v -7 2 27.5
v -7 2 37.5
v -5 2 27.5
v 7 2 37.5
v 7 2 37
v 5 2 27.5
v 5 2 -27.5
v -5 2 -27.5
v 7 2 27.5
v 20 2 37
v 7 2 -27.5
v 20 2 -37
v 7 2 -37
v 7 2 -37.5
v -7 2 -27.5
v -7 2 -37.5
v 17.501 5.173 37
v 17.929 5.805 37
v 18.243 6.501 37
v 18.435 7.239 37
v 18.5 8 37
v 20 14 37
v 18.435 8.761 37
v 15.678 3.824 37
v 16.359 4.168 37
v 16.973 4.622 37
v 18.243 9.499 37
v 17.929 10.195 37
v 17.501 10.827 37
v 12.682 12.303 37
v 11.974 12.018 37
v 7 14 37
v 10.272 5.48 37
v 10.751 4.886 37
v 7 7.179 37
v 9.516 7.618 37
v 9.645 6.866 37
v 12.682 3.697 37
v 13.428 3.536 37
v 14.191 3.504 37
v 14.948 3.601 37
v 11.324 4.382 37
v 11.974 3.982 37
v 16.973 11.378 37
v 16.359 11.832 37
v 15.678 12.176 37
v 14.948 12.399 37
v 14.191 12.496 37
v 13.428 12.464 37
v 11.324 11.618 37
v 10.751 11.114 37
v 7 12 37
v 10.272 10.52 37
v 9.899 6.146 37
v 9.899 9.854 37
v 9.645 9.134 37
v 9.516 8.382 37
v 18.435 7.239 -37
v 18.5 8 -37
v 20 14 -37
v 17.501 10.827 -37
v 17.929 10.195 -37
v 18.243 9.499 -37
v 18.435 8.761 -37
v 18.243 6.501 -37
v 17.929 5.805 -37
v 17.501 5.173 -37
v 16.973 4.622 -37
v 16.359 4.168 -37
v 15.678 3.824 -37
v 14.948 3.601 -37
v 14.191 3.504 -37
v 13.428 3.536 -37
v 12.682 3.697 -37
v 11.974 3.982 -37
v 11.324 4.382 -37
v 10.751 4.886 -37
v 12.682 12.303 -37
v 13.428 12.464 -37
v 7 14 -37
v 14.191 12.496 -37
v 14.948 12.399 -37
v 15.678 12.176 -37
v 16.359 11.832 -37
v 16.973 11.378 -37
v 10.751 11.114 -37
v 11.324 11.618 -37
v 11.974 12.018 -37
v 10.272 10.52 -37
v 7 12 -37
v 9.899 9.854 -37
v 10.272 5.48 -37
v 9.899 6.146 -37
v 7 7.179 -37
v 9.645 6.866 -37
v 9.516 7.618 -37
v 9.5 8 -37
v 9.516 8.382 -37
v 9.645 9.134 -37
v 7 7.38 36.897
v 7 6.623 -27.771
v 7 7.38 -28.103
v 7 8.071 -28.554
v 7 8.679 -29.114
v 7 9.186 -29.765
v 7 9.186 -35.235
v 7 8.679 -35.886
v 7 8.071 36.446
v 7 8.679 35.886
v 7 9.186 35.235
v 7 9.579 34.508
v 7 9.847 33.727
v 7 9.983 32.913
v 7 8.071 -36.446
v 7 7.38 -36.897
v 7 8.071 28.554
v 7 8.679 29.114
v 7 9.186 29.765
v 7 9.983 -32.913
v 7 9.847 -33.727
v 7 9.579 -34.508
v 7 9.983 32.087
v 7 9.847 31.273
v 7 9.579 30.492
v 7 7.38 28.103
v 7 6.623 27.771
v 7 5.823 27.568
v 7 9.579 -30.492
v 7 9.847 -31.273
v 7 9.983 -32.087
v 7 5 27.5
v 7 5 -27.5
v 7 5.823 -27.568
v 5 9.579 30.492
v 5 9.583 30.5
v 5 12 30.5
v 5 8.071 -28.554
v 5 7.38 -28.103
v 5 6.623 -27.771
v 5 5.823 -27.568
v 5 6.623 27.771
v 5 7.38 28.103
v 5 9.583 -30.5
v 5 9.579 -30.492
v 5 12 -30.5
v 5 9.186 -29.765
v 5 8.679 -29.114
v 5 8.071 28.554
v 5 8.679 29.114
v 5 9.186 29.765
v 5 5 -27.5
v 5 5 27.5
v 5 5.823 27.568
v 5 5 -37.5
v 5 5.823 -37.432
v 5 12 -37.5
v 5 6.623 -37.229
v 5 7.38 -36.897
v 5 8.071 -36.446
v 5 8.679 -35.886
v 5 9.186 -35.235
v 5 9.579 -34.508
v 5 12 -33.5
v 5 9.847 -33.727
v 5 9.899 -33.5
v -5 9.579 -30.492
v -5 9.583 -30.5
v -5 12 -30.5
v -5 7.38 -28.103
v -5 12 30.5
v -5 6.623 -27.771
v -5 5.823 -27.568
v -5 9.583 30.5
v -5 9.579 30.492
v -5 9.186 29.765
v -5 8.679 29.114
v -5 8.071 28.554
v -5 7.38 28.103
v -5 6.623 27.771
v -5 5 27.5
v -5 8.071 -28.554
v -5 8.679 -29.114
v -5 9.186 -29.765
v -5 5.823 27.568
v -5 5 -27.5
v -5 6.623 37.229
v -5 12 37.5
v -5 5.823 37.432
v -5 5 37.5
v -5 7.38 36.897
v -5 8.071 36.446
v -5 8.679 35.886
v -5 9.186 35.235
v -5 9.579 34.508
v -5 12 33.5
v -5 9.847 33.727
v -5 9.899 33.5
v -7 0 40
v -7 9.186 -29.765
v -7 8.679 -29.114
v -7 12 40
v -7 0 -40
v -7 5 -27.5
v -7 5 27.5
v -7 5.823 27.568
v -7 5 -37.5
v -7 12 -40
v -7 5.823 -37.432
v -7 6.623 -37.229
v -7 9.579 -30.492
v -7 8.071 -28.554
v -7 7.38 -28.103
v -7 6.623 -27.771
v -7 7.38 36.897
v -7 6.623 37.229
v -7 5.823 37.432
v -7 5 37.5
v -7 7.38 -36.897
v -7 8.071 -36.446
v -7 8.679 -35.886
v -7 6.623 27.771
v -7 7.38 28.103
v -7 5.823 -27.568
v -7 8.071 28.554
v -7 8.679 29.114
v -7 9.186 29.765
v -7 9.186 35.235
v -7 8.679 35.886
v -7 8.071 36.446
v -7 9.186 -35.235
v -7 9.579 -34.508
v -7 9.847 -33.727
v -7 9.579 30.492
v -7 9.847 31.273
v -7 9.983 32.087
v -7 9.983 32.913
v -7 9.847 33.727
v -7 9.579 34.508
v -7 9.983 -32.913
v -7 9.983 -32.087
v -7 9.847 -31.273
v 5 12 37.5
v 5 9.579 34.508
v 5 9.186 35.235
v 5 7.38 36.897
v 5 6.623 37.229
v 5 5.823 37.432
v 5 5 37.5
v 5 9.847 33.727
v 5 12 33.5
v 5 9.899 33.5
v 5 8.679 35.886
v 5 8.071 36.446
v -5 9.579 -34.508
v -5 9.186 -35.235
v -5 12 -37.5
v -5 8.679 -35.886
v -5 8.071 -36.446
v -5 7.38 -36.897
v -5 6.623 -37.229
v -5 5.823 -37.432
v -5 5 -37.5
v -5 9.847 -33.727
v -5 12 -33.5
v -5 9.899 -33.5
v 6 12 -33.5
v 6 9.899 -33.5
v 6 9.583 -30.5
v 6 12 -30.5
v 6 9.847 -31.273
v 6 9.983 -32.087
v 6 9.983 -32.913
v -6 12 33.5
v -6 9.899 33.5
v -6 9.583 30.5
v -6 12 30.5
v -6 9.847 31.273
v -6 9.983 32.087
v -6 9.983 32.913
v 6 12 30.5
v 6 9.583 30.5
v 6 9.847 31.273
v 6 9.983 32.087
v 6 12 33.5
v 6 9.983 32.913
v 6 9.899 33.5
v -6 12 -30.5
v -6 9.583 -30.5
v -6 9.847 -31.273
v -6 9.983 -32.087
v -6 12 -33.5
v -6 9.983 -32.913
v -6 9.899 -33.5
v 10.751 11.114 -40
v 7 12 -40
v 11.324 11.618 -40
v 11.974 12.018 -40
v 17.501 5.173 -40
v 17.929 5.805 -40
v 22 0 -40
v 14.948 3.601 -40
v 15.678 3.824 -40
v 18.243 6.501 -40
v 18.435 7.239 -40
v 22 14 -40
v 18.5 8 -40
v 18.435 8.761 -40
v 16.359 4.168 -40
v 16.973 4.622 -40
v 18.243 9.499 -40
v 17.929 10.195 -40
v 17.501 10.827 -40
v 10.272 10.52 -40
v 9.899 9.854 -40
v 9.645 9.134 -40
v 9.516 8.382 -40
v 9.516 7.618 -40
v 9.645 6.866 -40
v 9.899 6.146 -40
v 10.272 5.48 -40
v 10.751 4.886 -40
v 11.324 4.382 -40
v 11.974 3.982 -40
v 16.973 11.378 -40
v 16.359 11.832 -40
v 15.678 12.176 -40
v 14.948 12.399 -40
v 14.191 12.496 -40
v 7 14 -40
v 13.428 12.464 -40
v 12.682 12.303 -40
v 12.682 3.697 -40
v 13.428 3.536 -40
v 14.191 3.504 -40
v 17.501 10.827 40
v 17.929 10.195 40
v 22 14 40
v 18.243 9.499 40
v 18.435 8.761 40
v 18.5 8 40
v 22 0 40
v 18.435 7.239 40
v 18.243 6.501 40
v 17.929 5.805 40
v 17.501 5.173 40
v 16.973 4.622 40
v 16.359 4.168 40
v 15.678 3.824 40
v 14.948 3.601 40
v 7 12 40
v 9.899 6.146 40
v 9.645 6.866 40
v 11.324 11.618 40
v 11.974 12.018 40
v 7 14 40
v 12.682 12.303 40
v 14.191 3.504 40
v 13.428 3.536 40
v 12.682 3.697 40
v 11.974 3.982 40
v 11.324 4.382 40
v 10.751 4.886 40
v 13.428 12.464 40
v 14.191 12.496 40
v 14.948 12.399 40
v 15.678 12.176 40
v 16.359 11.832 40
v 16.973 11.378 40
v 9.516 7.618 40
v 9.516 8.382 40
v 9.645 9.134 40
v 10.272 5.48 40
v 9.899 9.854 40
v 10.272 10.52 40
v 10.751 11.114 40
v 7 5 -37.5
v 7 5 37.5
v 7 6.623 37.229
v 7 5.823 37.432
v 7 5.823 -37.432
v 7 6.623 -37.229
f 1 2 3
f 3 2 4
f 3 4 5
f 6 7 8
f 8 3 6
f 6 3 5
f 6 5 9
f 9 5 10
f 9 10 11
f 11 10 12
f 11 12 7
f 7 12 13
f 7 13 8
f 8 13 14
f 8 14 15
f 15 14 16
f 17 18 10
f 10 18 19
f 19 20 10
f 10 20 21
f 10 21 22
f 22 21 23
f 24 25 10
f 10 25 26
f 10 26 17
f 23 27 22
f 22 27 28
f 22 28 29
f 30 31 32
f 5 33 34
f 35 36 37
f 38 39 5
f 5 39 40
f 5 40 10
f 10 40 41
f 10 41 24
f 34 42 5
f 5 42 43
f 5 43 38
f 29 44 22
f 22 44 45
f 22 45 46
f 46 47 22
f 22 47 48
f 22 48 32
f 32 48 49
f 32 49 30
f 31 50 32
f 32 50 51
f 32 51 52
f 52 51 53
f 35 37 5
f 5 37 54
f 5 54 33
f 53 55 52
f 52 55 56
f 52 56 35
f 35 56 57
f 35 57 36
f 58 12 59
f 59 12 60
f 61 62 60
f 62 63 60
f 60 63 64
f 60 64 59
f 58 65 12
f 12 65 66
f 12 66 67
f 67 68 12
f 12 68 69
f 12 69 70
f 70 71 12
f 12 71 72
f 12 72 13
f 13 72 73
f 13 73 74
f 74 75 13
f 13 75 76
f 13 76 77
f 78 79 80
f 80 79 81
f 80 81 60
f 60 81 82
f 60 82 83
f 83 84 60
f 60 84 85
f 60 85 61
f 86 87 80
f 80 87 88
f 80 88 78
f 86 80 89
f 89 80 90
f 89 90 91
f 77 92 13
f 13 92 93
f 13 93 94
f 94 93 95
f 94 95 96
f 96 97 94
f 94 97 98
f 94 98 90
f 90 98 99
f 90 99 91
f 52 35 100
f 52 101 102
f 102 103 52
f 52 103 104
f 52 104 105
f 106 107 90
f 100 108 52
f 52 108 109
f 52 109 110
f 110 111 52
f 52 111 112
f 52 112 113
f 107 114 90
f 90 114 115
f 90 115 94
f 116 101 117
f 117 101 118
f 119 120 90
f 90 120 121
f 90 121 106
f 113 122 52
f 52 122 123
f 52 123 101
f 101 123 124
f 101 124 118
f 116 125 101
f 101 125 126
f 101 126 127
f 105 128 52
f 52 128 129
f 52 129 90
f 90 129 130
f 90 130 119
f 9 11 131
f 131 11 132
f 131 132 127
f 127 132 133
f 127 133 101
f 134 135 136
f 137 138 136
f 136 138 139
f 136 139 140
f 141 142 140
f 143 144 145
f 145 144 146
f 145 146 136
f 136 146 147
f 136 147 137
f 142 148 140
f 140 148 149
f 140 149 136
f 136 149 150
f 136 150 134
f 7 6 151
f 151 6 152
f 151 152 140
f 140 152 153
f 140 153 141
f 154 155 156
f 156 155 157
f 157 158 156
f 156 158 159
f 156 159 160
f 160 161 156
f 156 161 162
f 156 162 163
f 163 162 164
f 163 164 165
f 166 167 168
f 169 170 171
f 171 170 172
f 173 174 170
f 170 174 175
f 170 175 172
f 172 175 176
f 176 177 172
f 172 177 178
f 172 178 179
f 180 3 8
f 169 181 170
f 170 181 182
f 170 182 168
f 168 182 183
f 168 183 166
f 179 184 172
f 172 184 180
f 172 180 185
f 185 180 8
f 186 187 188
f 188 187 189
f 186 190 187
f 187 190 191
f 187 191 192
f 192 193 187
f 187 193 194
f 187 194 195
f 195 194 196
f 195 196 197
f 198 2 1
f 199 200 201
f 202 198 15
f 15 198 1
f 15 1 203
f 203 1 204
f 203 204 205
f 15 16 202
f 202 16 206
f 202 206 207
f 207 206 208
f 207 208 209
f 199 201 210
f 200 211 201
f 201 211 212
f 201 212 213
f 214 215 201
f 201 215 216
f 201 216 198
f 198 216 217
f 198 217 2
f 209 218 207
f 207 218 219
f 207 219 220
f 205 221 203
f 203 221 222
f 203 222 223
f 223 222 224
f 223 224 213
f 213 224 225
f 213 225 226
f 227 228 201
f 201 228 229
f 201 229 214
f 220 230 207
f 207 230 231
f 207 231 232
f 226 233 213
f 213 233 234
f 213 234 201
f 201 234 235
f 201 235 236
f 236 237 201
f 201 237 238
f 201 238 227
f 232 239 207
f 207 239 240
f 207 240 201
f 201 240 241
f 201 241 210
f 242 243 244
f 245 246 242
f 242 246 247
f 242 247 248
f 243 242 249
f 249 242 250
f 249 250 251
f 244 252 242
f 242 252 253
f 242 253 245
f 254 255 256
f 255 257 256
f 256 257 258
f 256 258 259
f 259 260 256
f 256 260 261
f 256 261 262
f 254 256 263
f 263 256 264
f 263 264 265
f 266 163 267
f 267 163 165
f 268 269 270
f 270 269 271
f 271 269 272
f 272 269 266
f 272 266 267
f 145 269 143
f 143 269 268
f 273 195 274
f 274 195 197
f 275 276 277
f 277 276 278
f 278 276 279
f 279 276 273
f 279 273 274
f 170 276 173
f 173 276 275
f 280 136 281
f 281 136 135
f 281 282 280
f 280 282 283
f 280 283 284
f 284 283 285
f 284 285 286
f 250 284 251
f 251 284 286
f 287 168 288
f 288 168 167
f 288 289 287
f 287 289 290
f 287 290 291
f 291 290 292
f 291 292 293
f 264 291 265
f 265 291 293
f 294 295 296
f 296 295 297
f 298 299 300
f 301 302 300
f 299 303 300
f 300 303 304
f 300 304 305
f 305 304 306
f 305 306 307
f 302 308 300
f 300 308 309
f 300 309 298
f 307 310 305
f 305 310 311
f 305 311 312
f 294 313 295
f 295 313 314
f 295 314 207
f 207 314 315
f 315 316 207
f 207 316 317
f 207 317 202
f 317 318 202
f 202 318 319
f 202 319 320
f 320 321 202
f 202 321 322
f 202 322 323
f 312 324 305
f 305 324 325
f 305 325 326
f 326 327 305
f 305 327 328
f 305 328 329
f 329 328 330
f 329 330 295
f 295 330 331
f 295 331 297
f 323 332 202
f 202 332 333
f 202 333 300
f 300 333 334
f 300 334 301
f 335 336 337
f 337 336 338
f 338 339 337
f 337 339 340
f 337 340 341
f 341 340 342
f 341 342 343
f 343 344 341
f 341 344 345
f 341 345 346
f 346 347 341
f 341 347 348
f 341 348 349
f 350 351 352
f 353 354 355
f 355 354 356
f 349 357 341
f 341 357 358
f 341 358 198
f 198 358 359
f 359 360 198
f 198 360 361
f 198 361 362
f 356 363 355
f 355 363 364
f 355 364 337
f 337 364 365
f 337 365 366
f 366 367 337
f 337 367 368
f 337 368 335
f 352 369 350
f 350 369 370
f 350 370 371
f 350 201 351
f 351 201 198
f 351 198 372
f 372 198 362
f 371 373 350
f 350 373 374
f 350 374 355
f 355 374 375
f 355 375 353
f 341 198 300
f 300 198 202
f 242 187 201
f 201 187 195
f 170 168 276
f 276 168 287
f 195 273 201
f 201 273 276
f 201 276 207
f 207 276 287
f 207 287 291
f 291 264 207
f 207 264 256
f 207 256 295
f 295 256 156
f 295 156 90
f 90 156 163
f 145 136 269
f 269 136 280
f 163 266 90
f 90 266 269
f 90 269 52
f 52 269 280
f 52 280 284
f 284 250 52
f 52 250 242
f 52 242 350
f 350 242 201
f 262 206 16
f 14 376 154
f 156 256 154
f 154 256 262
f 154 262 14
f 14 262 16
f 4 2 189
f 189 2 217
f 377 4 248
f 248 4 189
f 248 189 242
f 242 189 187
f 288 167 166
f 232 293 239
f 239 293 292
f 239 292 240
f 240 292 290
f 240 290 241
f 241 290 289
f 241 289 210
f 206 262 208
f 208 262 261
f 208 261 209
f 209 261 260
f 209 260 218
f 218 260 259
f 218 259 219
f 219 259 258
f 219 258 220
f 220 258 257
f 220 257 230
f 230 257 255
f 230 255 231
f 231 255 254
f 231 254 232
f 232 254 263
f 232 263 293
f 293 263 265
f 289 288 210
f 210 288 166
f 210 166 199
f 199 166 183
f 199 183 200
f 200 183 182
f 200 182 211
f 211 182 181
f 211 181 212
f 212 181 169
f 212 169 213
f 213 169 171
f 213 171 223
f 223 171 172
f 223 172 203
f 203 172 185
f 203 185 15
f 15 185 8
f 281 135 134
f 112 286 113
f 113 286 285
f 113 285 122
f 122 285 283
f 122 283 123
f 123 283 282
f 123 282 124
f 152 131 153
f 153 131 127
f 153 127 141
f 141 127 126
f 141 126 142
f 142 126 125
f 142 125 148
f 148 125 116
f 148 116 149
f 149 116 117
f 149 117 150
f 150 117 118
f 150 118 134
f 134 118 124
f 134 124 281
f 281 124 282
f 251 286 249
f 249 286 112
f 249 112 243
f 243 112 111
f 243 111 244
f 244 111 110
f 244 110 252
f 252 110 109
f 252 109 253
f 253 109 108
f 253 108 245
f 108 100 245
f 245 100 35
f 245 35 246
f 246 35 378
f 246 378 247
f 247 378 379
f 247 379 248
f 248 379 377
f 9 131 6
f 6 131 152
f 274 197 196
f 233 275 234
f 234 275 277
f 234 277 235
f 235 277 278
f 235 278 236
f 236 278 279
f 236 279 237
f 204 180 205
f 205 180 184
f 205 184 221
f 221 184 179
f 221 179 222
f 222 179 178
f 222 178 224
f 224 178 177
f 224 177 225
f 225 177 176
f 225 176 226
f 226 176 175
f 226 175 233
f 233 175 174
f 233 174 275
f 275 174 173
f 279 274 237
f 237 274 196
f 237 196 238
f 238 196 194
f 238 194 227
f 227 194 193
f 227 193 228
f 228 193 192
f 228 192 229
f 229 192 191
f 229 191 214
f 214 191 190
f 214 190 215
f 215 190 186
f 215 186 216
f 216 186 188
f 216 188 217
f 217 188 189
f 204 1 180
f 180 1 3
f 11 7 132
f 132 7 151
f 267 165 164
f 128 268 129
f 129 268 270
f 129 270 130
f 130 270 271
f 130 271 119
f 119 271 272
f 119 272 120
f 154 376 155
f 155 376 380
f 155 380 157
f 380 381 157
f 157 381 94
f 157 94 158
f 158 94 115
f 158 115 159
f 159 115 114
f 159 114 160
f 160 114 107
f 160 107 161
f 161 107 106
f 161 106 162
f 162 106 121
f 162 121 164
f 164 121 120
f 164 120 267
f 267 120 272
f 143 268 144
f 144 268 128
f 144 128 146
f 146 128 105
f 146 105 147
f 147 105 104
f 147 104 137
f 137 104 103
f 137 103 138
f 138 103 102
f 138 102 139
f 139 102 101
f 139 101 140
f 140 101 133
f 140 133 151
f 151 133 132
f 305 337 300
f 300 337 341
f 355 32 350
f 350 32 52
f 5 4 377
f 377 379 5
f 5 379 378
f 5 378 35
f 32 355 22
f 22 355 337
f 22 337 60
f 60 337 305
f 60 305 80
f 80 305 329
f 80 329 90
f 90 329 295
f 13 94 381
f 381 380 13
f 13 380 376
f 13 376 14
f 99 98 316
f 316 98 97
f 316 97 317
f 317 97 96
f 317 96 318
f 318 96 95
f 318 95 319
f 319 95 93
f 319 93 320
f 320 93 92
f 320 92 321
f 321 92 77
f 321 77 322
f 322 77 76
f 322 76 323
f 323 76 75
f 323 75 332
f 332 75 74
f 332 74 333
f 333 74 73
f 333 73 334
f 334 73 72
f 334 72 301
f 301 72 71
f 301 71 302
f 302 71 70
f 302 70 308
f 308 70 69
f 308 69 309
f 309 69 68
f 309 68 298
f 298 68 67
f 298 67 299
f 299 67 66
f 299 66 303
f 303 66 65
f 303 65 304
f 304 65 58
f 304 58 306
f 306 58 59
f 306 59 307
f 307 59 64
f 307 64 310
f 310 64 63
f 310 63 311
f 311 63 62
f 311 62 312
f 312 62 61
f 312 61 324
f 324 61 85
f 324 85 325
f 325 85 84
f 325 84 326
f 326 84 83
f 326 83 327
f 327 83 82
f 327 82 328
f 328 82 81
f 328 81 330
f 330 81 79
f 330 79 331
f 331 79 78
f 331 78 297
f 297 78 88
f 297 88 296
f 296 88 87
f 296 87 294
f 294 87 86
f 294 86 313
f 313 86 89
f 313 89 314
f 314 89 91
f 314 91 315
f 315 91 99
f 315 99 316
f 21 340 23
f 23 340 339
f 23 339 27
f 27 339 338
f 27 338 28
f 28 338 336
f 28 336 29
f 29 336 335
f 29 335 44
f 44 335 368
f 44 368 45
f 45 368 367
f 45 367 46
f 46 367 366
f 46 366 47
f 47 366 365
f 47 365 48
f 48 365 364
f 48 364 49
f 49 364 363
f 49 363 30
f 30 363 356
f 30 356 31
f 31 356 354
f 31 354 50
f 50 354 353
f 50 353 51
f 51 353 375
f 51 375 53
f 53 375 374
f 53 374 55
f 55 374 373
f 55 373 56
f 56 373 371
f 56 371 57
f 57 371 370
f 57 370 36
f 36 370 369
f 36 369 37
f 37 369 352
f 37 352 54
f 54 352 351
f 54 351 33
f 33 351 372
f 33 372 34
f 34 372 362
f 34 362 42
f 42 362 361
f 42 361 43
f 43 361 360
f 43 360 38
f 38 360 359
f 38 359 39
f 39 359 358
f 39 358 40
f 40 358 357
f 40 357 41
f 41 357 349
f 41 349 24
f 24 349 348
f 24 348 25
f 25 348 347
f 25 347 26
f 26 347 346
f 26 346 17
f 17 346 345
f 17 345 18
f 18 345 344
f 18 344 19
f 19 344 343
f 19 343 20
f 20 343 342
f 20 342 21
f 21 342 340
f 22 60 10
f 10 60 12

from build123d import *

# Parameters (mm, degrees)
SKETCH1_W           = 14
SKETCH1_H           = 80
BOSS_EXTRUDE1_DEPTH = 2
SKETCH2_W           = 14
SKETCH2_H           = 80
SKETCH2_W_2         = 10
SKETCH2_H_2         = 75
BOSS_EXTRUDE2_DEPTH = 10
SKETCH3_W           = 1
SKETCH3_H           = 3
CUT_EXTRUDE1_DEPTH  = 10
CUT_EXTRUDE2_DEPTH  = 14
SKETCH5_W           = 15
SKETCH5_H           = 80
BOSS_EXTRUDE3_DEPTH = 2
SKETCH6_W           = 15
SKETCH6_H           = 3
BOSS_EXTRUDE4_DEPTH = 12
SKETCH7_R           = 4.5
CUT_EXTRUDE3_DEPTH  = 80
SKETCH8_W           = 2
SKETCH8_H           = 74
BOSS_EXTRUDE5_DEPTH = 12


with BuildPart() as part:
    # Sketch1 → Boss-Extrude1 (new body)
    with BuildSketch(Plane(origin=(0, 0, 0), x_dir=(1, 0, 0), z_dir=(0, 1, 0))):
        Rectangle(SKETCH1_W, SKETCH1_H)
    extrude(amount=BOSS_EXTRUDE1_DEPTH)

    # Sketch2 → Boss-Extrude2 (add)
    with BuildSketch(Plane(origin=(0, 2, 0), x_dir=(1, 0, 0), z_dir=(0, 1, 0))):
        Rectangle(SKETCH2_W, SKETCH2_H)
        Rectangle(SKETCH2_W_2, SKETCH2_H_2, mode=Mode.SUBTRACT)
    extrude(amount=BOSS_EXTRUDE2_DEPTH)

    # Sketch3 → Cut-Extrude1 (cut)
    with BuildSketch(Plane(origin=(0, 12, 0), x_dir=(1, 0, 0), z_dir=(0, 1, 0))):
        with Locations((-5.5, -32)):
            Rectangle(SKETCH3_W, SKETCH3_H)
        with Locations((5.5, -32)):
            Rectangle(SKETCH3_W, SKETCH3_H)
        with Locations((5.5, 32)):
            Rectangle(SKETCH3_W, SKETCH3_H)
        with Locations((-5.5, 32)):
            Rectangle(SKETCH3_W, SKETCH3_H)
    extrude(amount=-CUT_EXTRUDE1_DEPTH, mode=Mode.SUBTRACT)

    # Sketch4 → Cut-Extrude2 (cut)
    with BuildSketch(Plane(origin=(7, 0, 0), x_dir=(0, 0, -1), z_dir=(1, 0, 0))):
        with BuildLine():
            ThreePointArc((-37.5, 5), (-32.5, 10), (-27.5, 5))
            Line((-27.5, 5), (-27.5, 2))
            Line((-27.5, 2), (-32.5, 2))
            Line((-32.5, 2), (-37.5, 2))
            Line((-37.5, 2), (-37.5, 5))
        make_face()
        with BuildLine():
            ThreePointArc((27.5, 5), (32.5, 10), (37.5, 5))
            Line((37.5, 5), (37.5, 2))
            Line((37.5, 2), (32.5, 2))
            Line((32.5, 2), (27.5, 2))
            Line((27.5, 2), (27.5, 5))
        make_face()
    extrude(amount=-CUT_EXTRUDE2_DEPTH, mode=Mode.SUBTRACT)

    # Sketch5 → Boss-Extrude3 (add)
    with BuildSketch(Plane(origin=(0, 0, 0), x_dir=(1, 0, 0), z_dir=(0, 1, 0))):
        with Locations((14.5, 0)):
            Rectangle(SKETCH5_W, SKETCH5_H)
    extrude(amount=BOSS_EXTRUDE3_DEPTH)

    # Sketch6 → Boss-Extrude4 (add)
    with BuildSketch(Plane(origin=(0, 2, 0), x_dir=(1, 0, 0), z_dir=(0, 1, 0))):
        with Locations((14.5, -38.5)):
            Rectangle(SKETCH6_W, SKETCH6_H)
        with Locations((14.5, 38.5)):
            Rectangle(SKETCH6_W, SKETCH6_H)
    extrude(amount=BOSS_EXTRUDE4_DEPTH)

    # Sketch7 → Cut-Extrude3 (cut)
    with BuildSketch(Plane.XY.offset(40)):
        with Locations((14, 8)):
            Circle(SKETCH7_R)
    extrude(amount=-CUT_EXTRUDE3_DEPTH, mode=Mode.SUBTRACT)

    # Sketch8 → Boss-Extrude5 (add)
    with BuildSketch(Plane(origin=(0, 2, 0), x_dir=(1, 0, 0), z_dir=(0, 1, 0))):
        with Locations((21, 0)):
            Rectangle(SKETCH8_W, SKETCH8_H)
    extrude(amount=BOSS_EXTRUDE5_DEPTH)


solid = part.part
